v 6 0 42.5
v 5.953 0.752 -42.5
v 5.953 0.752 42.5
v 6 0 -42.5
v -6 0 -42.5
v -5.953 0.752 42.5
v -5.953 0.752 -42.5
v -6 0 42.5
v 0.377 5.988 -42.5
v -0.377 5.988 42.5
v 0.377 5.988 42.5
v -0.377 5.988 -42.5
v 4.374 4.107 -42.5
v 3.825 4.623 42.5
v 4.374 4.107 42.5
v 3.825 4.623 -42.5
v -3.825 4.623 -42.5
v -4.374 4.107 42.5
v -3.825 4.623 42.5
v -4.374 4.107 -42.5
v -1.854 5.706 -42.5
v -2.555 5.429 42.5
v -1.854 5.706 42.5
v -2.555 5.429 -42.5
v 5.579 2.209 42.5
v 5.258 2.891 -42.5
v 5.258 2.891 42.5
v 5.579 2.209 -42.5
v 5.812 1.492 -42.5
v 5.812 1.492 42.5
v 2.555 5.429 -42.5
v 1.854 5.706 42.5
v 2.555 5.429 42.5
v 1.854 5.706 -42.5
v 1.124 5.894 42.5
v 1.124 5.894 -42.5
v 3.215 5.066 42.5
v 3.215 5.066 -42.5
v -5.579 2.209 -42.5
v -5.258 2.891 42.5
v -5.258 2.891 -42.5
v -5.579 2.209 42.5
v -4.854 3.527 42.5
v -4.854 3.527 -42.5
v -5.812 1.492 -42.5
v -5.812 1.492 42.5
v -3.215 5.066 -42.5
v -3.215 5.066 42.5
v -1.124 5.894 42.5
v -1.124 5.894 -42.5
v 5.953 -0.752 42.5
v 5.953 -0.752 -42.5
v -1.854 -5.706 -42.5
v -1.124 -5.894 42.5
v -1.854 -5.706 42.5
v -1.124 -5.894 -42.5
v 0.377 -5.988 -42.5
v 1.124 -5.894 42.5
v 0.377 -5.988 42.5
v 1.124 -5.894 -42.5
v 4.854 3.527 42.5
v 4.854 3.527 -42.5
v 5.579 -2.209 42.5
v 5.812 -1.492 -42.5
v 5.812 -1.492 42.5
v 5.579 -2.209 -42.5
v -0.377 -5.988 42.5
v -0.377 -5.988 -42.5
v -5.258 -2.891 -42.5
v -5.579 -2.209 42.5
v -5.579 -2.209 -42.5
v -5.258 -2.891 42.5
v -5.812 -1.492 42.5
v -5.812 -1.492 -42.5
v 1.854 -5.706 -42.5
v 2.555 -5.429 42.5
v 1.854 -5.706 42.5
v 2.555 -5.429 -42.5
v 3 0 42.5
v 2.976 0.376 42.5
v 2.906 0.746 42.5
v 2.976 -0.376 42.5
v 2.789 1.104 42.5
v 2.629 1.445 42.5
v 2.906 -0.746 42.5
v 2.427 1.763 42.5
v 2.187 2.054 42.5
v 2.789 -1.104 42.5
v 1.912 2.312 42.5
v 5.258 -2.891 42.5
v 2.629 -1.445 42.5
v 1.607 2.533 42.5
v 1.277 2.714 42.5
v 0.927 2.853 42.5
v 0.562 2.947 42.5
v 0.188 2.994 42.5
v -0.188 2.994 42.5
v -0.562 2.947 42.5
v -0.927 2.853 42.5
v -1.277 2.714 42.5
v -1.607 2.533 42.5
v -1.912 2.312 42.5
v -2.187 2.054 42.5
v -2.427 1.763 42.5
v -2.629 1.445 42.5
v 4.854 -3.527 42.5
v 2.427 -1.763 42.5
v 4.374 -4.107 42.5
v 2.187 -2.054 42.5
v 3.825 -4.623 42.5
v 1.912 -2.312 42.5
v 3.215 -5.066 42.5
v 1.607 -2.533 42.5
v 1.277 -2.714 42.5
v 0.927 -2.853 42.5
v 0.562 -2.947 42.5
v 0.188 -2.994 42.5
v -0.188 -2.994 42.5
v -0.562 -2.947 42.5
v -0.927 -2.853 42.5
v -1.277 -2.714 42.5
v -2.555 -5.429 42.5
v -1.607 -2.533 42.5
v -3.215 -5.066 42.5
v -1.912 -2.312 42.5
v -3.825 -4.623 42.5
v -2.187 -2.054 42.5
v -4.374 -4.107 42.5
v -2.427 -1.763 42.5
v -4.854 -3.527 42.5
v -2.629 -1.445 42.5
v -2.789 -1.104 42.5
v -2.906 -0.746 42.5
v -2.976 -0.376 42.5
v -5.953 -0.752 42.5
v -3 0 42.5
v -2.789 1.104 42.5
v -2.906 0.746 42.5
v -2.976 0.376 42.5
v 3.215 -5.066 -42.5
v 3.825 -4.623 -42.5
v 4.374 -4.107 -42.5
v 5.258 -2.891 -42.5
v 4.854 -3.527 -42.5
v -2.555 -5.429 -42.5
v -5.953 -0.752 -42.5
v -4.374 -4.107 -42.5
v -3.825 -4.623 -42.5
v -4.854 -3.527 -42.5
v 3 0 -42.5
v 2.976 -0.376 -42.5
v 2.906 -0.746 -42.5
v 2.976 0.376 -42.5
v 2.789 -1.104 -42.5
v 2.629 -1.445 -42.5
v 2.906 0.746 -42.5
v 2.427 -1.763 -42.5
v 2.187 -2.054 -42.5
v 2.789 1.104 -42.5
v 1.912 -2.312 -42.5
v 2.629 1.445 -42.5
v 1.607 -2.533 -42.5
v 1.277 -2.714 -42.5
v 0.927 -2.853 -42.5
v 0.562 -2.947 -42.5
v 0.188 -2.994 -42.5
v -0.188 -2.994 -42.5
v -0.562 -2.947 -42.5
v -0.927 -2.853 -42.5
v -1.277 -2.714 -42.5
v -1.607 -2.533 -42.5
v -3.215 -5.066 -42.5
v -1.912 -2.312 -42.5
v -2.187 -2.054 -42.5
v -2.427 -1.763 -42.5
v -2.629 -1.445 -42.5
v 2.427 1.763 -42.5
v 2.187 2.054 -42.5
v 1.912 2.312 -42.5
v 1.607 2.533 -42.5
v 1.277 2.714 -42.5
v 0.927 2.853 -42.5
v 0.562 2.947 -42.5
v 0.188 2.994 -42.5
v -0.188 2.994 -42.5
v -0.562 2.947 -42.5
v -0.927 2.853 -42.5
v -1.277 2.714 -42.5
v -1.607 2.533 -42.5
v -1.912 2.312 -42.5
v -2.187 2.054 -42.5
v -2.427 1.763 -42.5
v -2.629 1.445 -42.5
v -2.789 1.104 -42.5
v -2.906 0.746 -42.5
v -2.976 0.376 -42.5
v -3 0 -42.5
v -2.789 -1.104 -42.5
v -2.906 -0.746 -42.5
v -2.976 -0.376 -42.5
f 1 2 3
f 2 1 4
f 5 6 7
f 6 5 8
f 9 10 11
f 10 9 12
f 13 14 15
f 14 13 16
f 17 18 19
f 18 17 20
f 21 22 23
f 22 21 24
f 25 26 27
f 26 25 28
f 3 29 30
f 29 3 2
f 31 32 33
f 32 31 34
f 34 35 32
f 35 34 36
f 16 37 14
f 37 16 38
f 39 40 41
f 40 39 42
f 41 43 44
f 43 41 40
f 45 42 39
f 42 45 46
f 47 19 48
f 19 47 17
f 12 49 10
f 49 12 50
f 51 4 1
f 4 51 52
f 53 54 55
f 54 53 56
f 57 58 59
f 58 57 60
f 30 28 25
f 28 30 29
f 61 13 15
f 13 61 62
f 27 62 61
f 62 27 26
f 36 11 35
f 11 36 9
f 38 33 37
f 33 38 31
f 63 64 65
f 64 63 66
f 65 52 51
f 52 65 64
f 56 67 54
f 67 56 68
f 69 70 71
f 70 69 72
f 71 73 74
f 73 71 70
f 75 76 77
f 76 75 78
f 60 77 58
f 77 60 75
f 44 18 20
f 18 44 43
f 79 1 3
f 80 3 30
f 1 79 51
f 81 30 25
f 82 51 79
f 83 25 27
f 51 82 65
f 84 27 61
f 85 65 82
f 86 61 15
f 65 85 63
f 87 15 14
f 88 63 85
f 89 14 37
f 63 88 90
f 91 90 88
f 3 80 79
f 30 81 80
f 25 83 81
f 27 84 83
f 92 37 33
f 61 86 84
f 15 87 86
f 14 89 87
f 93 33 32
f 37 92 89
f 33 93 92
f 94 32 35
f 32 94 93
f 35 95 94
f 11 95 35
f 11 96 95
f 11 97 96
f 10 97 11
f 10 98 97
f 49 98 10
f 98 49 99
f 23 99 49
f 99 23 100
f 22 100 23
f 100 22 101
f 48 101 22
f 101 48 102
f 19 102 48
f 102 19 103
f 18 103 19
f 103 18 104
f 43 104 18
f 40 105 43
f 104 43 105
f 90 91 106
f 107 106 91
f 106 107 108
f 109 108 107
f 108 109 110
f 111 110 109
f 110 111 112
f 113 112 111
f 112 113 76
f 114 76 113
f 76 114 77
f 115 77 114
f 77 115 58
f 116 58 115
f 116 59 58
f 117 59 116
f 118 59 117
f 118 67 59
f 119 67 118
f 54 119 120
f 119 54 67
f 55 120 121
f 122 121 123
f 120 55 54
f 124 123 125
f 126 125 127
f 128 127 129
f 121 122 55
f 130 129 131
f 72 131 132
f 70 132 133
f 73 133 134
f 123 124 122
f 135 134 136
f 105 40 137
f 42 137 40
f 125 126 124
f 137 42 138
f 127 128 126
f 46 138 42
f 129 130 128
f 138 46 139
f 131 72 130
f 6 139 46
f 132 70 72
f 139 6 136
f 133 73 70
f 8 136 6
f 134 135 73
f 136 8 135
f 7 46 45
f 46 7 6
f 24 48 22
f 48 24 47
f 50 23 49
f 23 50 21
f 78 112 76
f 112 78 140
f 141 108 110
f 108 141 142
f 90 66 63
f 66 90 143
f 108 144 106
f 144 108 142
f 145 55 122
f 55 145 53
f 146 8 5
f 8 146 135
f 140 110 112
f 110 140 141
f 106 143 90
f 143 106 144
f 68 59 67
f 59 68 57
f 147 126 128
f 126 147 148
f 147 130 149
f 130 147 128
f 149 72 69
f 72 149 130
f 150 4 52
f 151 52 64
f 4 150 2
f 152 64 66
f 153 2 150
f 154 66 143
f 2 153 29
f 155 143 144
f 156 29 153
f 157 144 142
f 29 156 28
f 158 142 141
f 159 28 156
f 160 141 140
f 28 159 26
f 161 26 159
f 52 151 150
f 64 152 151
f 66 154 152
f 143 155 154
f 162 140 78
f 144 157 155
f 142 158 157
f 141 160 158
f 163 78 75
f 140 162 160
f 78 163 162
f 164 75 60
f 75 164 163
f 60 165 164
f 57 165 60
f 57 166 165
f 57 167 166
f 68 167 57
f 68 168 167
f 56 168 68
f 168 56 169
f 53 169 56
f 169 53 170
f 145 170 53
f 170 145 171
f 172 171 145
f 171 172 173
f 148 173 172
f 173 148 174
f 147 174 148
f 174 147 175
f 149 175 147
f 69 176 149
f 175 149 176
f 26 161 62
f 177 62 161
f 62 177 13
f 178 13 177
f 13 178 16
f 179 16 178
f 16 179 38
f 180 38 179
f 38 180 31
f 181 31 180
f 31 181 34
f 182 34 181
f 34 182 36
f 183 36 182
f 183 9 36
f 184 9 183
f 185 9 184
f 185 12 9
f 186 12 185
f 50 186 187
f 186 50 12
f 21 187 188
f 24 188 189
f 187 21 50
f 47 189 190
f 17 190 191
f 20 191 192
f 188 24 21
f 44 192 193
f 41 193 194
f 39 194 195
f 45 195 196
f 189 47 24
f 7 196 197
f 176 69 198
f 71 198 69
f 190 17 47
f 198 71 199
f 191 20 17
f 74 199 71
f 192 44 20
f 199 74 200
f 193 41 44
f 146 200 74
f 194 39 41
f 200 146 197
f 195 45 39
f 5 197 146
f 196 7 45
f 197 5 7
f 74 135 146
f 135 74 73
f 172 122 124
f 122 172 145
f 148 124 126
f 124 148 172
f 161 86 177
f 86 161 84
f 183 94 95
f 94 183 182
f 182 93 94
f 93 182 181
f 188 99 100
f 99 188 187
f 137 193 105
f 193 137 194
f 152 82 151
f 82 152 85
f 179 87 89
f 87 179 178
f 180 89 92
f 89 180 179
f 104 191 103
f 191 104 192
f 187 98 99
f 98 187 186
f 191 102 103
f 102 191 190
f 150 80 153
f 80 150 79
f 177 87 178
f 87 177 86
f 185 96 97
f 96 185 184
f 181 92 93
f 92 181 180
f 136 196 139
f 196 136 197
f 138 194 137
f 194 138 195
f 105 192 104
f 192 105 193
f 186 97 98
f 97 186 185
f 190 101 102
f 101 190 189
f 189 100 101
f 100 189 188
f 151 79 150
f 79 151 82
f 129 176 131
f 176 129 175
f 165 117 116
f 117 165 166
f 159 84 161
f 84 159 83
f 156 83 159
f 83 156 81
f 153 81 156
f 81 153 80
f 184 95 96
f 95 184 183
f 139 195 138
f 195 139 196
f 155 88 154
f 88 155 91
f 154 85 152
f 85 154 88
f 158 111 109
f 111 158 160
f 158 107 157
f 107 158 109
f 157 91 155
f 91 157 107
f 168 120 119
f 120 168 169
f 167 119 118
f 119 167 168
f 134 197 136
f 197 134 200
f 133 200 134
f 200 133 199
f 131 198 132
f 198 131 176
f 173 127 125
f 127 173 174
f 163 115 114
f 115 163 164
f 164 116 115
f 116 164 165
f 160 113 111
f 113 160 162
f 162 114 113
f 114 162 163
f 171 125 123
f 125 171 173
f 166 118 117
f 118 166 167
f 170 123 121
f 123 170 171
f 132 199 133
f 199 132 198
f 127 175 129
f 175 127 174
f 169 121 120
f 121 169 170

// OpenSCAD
$fn = 50;


difference() {
	union() {
		translate(v = [0, 0, -42.5000000000]) {
			cylinder(h = 85, r = 6.0000000000);
		}
	}
	union() {
		translate(v = [0, 0, -100.0000000000]) {
			cylinder(h = 200, r = 3.0000000000);
		}
	}
}
